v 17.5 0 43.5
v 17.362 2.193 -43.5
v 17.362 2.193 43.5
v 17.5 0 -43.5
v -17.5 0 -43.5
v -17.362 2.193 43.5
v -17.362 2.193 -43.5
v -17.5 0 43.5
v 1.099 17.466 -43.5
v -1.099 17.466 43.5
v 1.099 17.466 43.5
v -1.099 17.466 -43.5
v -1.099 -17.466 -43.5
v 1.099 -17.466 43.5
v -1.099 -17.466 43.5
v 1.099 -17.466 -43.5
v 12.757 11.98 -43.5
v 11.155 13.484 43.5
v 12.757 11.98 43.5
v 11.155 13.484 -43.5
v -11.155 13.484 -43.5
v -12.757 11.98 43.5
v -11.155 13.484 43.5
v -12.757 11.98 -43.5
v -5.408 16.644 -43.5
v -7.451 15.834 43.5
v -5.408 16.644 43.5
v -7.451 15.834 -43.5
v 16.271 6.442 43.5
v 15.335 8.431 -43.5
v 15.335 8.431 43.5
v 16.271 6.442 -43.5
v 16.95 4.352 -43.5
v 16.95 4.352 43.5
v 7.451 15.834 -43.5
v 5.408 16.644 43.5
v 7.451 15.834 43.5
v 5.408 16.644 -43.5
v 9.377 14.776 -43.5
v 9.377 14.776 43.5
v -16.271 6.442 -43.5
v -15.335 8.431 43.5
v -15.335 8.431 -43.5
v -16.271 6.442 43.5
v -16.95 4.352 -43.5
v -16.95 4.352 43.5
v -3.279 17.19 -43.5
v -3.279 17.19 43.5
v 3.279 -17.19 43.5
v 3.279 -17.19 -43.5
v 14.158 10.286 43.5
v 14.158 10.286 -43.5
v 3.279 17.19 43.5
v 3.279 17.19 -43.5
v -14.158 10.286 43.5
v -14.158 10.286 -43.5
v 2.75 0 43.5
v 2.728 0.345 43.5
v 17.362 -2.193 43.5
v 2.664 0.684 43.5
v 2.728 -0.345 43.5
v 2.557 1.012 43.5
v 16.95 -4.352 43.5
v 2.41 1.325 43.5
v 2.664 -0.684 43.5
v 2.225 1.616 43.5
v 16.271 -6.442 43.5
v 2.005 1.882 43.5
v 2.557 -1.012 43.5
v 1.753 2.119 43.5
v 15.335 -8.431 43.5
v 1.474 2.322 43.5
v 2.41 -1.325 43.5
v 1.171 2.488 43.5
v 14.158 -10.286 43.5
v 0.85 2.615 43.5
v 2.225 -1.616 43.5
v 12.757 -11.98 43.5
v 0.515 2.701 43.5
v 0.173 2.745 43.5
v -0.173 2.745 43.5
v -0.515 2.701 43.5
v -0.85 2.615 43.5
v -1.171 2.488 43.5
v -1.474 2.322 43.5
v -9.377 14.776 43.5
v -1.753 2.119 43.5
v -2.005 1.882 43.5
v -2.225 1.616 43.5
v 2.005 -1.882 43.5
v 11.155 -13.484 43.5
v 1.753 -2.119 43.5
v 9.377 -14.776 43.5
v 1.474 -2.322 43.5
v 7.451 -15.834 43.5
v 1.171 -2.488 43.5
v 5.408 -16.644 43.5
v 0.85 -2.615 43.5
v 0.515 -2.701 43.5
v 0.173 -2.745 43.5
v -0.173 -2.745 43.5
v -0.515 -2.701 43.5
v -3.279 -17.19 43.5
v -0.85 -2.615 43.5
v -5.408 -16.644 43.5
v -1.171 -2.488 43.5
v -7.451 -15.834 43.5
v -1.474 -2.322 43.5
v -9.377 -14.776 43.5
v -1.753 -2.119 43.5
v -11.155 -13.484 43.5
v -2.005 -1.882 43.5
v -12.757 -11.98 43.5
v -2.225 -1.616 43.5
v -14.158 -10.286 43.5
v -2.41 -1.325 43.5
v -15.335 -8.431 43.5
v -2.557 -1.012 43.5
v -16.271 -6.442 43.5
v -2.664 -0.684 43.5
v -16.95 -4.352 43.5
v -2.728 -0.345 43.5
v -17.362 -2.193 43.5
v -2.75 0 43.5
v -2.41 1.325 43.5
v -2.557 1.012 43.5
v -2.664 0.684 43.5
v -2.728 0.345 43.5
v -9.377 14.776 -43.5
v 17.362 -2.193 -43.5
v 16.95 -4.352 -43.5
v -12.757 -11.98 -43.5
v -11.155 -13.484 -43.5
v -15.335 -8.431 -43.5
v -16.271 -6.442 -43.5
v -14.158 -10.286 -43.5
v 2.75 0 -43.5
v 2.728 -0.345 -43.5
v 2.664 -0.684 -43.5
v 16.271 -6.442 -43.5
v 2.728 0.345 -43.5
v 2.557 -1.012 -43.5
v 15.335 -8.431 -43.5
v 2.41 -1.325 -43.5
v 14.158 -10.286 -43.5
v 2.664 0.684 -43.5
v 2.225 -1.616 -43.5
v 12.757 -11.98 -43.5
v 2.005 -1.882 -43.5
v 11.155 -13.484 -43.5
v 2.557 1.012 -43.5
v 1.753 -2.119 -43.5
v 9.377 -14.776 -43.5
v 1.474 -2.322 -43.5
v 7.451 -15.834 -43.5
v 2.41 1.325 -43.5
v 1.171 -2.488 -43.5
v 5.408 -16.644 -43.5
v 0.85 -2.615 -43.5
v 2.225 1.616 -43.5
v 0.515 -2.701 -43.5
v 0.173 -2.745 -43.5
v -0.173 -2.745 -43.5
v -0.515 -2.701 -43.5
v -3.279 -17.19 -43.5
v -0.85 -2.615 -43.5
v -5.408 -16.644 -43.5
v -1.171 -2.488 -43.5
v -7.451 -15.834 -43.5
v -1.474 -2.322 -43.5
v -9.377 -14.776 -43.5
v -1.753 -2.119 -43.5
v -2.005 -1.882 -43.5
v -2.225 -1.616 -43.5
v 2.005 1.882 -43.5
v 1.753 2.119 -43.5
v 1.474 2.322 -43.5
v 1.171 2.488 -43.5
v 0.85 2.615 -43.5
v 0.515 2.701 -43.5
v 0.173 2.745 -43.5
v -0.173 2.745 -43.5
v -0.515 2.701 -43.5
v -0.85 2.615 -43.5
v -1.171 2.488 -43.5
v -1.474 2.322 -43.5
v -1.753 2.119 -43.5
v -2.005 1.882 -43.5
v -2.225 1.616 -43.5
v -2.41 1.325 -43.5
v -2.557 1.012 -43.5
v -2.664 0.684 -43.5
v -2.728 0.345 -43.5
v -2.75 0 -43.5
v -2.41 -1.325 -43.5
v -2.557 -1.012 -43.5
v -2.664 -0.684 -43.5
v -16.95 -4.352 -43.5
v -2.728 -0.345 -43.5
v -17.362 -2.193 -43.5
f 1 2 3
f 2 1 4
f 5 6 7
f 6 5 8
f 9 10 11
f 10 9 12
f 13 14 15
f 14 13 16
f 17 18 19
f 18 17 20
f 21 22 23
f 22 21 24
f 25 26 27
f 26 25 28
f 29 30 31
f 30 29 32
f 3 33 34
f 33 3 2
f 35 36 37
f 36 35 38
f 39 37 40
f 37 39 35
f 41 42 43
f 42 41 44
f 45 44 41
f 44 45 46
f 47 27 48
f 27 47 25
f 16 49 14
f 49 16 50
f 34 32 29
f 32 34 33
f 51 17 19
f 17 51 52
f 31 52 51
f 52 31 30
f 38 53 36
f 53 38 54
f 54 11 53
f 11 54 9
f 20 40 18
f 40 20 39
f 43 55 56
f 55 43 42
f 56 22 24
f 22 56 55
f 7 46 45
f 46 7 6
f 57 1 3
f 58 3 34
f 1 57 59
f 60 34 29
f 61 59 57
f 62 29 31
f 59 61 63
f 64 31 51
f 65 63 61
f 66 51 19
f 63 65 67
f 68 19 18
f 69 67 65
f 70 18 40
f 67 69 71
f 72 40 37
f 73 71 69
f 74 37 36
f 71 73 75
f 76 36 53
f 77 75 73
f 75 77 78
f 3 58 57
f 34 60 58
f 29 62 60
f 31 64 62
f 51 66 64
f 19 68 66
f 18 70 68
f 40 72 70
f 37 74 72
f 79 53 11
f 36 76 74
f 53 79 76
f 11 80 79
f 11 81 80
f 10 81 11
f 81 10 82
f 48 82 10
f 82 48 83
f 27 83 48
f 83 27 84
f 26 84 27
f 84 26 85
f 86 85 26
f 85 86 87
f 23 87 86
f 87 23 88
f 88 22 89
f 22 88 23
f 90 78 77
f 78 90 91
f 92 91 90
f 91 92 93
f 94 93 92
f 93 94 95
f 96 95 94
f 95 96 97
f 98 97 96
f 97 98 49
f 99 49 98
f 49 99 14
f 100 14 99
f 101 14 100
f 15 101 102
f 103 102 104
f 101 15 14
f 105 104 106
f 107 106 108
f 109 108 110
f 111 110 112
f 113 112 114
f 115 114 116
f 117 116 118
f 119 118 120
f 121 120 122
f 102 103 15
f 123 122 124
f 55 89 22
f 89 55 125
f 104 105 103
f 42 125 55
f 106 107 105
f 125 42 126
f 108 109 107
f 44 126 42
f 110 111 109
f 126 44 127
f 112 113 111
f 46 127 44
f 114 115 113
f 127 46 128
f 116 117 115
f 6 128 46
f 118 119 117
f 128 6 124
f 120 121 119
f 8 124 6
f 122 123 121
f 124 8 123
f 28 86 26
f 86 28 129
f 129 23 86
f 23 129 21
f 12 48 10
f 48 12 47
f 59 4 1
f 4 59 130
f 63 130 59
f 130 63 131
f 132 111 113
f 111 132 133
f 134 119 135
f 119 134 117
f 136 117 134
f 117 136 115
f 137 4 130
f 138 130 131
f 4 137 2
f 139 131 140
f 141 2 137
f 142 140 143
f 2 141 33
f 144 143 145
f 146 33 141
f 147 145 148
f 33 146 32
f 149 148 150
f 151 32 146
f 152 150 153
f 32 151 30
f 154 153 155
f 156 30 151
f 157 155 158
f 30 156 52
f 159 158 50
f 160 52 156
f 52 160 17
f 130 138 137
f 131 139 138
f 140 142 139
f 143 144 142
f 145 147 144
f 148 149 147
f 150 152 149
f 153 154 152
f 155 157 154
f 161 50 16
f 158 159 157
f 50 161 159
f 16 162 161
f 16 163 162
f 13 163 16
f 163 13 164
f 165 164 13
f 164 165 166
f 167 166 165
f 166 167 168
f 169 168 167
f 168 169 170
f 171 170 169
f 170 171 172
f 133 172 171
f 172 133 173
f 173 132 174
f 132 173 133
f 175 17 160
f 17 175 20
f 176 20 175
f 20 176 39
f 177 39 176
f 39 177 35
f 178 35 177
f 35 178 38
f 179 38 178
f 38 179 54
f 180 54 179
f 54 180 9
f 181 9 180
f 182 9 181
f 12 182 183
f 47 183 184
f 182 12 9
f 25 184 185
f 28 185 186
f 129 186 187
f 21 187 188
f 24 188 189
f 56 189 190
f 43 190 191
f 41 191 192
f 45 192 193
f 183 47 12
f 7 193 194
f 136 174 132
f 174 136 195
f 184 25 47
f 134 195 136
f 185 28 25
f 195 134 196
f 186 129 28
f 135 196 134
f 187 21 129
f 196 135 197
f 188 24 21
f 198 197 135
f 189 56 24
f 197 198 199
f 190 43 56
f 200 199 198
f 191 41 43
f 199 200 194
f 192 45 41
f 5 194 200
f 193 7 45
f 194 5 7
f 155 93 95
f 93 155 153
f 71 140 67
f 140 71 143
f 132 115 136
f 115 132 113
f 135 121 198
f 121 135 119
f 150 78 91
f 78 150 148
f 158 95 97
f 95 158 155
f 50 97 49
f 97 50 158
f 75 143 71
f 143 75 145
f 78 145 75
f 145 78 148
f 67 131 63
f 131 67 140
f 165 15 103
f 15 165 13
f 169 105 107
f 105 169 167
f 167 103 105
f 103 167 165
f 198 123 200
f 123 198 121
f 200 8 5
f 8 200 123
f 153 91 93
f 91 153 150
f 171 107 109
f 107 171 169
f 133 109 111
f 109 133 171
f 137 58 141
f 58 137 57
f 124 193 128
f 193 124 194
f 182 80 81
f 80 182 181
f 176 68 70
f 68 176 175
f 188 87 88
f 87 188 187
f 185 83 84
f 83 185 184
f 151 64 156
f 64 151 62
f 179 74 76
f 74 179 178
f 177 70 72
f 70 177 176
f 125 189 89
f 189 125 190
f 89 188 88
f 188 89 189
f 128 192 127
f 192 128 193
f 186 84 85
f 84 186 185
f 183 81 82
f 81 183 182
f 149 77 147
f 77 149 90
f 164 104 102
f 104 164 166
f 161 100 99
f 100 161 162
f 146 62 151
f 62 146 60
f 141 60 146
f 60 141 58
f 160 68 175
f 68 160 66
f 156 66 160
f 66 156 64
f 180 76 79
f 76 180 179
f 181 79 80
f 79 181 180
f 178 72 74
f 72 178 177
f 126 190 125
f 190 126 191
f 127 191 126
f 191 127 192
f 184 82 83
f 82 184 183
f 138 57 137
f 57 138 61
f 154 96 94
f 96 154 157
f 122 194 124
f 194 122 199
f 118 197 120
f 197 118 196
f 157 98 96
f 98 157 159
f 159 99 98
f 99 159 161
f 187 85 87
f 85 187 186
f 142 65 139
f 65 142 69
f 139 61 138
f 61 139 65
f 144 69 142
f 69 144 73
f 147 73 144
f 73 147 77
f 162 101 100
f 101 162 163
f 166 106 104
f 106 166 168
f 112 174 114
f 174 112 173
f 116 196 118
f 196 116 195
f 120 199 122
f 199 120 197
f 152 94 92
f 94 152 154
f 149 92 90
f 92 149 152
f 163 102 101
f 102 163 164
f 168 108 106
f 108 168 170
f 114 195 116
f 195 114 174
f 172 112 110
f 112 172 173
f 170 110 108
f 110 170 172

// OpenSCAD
$fn = 50;


difference() {
	union() {
		translate(v = [0, 0, -43.5000000000]) {
			cylinder(h = 87, r = 17.5000000000);
		}
	}
	union() {
		translate(v = [0, 0, -100.0000000000]) {
			cylinder(h = 200, r = 2.7500000000);
		}
	}
}
